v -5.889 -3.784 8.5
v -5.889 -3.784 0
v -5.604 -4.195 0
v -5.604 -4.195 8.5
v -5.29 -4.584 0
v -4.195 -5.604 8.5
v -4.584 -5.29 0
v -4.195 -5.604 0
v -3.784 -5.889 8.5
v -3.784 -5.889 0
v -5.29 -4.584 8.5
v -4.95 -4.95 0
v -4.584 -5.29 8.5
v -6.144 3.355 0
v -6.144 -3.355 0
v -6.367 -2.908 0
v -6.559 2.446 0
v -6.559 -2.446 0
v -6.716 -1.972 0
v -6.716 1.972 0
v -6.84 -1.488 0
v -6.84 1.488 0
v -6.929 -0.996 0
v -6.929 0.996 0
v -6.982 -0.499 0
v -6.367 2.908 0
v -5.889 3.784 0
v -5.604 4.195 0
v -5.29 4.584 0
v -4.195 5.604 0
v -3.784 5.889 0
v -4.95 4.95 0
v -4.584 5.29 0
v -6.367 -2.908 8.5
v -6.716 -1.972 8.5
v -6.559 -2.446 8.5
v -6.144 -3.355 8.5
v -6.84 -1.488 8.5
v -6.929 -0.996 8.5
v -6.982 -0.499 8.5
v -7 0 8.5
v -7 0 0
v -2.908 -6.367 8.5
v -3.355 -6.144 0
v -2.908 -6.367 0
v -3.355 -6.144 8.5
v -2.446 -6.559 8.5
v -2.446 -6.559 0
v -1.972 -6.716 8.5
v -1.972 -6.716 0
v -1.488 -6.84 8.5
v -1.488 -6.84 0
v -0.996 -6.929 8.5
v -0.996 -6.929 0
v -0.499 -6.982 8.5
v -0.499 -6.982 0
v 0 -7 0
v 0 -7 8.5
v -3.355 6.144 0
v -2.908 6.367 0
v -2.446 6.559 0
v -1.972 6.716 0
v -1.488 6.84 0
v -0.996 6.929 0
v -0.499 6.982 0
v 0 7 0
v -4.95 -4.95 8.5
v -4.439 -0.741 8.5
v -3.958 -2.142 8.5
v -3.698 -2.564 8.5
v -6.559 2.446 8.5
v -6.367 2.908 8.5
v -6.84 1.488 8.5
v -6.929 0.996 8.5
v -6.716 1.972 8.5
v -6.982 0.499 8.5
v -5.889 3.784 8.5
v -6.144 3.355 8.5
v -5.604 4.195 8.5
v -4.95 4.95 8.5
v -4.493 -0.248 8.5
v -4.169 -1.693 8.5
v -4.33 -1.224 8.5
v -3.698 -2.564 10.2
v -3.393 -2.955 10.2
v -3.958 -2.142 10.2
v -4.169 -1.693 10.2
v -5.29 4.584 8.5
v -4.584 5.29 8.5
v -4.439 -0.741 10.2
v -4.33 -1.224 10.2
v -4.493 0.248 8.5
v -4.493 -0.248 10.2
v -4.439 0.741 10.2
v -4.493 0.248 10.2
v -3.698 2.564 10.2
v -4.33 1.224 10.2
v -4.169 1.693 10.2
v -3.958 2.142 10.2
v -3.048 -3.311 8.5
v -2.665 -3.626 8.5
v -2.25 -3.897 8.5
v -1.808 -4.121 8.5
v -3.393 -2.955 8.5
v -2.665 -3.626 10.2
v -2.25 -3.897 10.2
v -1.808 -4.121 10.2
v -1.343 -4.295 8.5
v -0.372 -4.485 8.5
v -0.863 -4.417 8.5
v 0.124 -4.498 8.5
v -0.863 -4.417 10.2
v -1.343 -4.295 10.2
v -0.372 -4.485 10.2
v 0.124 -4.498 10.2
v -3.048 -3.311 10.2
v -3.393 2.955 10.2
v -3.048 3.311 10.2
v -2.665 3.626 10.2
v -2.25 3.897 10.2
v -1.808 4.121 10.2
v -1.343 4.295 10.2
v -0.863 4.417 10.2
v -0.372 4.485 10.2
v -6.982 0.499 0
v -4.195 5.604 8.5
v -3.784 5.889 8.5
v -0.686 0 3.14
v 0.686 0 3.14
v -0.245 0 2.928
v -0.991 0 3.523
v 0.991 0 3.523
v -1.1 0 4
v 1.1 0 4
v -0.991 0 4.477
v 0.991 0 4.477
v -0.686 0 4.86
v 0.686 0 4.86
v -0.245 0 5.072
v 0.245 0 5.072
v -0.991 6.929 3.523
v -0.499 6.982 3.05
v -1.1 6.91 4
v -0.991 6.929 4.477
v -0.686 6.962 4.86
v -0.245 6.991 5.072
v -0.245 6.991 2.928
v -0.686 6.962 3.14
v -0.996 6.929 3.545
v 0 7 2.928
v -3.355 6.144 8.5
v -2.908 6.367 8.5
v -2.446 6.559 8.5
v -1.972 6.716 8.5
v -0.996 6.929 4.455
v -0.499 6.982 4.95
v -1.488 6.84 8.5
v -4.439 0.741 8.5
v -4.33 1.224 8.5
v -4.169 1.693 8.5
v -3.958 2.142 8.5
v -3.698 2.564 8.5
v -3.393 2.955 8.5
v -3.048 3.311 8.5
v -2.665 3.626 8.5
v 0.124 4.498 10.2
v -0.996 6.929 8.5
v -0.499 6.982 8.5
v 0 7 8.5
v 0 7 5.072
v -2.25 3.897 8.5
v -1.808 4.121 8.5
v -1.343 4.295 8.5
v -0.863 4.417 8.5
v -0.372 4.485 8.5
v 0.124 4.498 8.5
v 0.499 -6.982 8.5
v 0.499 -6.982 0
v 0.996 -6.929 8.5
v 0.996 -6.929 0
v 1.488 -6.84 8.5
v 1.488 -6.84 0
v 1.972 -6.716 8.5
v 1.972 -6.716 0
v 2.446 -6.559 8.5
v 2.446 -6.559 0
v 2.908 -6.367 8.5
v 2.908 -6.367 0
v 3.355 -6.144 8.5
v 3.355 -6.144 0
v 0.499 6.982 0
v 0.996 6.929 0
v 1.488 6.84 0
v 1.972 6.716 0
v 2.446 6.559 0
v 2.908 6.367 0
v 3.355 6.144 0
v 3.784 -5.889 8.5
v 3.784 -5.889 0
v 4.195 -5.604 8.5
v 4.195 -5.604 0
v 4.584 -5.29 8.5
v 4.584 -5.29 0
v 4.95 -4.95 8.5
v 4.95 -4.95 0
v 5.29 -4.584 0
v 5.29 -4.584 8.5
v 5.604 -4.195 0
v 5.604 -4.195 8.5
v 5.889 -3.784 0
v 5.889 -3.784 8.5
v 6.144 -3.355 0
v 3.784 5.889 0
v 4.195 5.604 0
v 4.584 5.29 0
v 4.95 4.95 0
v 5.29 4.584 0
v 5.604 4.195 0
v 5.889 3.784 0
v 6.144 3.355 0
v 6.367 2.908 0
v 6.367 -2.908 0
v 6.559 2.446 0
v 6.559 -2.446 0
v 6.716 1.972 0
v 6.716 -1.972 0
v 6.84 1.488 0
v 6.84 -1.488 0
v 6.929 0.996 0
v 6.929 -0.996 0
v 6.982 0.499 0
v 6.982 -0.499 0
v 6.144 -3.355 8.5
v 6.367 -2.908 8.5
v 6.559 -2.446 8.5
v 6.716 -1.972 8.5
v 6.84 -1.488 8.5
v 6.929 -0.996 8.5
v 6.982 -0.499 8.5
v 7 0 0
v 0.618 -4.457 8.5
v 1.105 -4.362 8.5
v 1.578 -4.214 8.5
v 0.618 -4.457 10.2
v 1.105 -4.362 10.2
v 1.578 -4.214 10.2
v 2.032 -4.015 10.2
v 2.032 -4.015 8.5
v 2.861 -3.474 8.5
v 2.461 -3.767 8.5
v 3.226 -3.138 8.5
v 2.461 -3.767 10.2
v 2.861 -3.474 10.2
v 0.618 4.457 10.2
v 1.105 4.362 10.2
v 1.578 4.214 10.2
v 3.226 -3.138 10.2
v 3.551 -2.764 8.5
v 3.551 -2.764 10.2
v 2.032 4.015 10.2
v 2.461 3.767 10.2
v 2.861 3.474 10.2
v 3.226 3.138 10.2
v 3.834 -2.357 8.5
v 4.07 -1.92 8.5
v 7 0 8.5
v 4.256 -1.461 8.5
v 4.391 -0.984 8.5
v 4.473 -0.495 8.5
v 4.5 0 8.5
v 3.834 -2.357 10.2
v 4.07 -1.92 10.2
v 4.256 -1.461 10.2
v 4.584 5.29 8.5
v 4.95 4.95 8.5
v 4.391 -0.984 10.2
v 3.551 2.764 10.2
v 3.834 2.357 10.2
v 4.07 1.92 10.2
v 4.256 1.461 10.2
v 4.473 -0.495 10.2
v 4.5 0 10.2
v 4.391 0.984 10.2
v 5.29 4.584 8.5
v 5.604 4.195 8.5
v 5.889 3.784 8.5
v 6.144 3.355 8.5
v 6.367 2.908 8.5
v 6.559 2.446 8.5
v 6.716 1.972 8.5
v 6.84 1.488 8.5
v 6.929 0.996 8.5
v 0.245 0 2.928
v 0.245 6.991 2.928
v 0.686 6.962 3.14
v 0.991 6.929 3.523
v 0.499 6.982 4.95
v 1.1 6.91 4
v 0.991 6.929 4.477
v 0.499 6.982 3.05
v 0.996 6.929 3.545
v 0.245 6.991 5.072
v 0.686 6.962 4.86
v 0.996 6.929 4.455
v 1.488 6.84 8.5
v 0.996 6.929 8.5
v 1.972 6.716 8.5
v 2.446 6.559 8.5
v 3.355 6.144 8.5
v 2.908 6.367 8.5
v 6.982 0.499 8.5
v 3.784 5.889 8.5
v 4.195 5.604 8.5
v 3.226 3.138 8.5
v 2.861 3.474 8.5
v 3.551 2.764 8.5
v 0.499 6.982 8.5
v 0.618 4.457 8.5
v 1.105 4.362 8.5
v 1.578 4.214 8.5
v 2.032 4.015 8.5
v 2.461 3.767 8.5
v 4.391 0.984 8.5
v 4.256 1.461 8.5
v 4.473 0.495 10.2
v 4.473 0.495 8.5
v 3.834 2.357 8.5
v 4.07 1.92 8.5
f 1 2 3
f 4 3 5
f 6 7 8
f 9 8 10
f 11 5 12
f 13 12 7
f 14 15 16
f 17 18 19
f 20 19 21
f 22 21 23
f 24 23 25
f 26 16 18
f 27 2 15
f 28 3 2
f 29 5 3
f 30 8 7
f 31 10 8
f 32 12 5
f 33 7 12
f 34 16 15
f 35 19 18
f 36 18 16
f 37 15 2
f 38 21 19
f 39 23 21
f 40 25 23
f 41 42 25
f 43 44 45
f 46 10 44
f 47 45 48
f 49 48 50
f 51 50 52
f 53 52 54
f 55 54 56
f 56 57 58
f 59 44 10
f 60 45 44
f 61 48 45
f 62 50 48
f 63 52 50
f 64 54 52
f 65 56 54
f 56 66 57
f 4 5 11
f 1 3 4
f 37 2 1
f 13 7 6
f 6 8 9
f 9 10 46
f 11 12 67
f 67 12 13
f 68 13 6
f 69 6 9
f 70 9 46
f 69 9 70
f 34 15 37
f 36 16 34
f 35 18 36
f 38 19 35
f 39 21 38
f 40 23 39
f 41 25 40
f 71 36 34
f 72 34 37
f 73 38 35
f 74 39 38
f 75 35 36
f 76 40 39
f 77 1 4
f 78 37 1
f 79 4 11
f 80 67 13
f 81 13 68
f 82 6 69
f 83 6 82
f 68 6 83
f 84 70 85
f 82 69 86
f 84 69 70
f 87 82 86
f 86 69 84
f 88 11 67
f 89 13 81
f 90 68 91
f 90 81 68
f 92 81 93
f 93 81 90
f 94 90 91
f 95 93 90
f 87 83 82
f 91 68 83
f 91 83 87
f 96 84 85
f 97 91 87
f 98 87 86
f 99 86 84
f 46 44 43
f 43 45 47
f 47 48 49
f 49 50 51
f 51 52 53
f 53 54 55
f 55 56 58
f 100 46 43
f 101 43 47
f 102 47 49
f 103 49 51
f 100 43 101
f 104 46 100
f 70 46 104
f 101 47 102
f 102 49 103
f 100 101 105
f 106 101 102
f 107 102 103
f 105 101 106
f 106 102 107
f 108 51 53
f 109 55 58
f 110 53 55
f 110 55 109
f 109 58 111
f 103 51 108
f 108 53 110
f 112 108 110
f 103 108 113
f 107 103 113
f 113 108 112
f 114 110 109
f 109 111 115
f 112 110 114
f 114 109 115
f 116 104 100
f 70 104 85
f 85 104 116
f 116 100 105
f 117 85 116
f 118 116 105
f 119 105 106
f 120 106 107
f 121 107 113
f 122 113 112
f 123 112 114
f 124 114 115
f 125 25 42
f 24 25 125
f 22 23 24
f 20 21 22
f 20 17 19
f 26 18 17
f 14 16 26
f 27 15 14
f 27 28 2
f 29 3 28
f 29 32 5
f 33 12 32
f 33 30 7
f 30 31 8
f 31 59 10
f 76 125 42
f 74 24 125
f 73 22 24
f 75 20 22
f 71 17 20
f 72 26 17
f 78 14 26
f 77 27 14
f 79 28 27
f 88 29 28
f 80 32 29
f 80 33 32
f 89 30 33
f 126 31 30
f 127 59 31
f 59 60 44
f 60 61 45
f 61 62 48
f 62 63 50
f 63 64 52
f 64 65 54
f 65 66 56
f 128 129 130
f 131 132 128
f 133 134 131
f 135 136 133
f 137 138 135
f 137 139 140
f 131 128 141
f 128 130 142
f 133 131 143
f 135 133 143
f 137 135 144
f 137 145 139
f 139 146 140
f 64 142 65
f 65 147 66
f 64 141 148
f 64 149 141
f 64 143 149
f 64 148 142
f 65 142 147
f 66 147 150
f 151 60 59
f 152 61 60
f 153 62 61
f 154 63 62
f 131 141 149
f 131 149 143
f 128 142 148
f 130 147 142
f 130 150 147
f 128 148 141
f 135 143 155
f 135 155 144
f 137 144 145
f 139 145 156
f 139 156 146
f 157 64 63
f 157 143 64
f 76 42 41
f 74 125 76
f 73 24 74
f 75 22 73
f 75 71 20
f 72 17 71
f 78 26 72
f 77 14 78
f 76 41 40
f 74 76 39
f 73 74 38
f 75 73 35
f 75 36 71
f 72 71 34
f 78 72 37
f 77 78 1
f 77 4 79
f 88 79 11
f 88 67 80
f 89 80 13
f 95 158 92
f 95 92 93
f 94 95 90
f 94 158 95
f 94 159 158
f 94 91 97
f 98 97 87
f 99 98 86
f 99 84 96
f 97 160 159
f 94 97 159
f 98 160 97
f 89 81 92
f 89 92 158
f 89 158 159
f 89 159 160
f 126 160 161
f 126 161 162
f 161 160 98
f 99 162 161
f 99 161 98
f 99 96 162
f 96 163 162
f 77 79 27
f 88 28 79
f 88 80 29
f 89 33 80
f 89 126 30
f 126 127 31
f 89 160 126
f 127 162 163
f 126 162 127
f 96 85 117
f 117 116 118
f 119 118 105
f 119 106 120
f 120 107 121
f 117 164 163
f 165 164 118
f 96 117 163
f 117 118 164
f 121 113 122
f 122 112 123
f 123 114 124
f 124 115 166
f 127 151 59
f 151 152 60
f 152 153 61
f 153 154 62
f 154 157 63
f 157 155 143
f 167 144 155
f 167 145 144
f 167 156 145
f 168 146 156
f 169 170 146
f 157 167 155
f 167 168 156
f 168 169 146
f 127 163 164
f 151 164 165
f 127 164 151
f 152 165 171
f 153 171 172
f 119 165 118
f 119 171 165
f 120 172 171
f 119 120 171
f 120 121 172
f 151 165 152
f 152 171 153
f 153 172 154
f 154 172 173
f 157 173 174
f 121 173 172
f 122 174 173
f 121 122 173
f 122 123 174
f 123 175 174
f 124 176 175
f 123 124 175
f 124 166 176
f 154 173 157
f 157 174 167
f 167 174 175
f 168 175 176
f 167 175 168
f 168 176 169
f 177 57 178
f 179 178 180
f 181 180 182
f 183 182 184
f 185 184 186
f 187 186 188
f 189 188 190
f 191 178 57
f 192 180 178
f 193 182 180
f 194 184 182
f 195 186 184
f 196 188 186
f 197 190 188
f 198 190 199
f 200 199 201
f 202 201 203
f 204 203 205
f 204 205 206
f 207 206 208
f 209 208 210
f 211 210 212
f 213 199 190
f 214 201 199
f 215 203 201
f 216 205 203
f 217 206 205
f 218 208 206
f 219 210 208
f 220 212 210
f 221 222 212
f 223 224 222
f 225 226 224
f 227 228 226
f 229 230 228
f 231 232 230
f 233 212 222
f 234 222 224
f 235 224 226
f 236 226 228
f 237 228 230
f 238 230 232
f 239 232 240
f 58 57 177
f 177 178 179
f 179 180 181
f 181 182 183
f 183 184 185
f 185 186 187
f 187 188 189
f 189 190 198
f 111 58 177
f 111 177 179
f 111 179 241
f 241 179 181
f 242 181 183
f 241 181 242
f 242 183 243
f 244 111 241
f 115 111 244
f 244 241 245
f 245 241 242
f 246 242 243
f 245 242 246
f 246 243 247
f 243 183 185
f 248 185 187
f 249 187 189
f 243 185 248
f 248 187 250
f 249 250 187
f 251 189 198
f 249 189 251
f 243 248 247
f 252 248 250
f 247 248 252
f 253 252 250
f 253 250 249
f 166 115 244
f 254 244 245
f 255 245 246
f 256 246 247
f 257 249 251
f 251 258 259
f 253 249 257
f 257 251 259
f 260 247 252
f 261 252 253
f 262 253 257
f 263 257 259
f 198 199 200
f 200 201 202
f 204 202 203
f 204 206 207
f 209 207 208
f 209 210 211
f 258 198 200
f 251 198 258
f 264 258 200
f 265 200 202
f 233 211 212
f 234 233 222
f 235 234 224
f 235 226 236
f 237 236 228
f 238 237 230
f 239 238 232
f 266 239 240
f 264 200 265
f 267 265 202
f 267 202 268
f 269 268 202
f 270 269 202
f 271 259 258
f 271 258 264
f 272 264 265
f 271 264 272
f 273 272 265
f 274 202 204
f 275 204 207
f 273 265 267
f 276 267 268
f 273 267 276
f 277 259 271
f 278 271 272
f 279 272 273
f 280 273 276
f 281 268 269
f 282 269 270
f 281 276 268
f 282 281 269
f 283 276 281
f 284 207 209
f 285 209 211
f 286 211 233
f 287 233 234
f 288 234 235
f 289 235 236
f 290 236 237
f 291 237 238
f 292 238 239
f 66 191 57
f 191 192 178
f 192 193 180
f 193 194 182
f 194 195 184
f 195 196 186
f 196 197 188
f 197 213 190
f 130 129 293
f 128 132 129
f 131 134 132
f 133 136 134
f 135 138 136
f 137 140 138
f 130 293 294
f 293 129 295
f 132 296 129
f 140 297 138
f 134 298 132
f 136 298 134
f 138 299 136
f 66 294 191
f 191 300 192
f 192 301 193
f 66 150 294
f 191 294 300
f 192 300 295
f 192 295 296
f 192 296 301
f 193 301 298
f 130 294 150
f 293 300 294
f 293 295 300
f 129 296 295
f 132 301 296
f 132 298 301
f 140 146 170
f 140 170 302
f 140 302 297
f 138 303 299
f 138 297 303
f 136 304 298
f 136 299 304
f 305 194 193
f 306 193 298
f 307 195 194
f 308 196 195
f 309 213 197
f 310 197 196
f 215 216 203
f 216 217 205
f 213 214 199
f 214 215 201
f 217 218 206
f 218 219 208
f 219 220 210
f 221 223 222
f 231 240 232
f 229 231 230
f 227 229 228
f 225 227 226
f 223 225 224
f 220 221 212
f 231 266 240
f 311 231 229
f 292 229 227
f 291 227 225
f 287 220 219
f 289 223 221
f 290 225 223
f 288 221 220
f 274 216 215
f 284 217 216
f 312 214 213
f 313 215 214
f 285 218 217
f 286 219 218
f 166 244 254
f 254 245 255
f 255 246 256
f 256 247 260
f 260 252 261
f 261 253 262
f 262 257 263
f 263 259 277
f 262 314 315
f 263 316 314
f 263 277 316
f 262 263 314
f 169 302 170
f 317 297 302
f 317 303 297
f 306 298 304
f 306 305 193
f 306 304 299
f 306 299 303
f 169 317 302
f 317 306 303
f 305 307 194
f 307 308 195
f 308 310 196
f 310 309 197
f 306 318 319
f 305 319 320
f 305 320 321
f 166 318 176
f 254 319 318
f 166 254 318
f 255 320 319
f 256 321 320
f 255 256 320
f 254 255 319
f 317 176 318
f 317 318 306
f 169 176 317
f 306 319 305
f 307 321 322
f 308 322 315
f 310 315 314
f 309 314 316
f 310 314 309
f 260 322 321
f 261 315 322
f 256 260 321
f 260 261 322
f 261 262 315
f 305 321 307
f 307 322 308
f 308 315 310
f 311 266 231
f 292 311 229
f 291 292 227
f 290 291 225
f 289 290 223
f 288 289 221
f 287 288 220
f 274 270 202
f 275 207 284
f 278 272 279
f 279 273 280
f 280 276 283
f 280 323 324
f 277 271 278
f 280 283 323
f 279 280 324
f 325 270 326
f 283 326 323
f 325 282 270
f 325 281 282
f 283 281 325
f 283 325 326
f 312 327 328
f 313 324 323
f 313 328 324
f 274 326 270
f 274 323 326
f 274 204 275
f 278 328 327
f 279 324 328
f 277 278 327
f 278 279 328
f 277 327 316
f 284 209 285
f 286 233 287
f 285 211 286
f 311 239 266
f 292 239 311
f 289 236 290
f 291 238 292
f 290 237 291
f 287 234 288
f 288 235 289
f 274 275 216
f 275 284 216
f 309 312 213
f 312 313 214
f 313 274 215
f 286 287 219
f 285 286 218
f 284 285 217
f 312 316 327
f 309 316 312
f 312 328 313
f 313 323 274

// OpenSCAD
// file: lib/lib.scad
// Shared helpers. Include AFTER params.scad (needs TOL, M3_* etc.).
$fa = 4; $fs = 0.5;

module rrect(size, r) {            // 2D rounded rectangle, centred
    r2 = min(r, min(size[0], size[1]) / 2 - 0.001);
    offset(r = r2) square([size[0] - 2 * r2, size[1] - 2 * r2], center = true);
}
module rbox(size, r, center_xy = true) {   // box with rounded vertical edges
    translate(center_xy ? [0, 0, 0] : [size[0] / 2, size[1] / 2, 0])
        linear_extrude(size[2]) rrect([size[0], size[1]], r);
}
module rbox_at(x0, x1, y0, y1, z0, z1, r = 0.01) {
    translate([(x0 + x1) / 2, (y0 + y1) / 2, z0]) rbox([x1 - x0, y1 - y0, z1 - z0], r);
}
module box_at(x0, x1, y0, y1, z0, z1) { translate([x0, y0, z0]) cube([x1 - x0, y1 - y0, z1 - z0]); }

module ring(ro, ri, h) { difference() { cylinder(r = ro, h = h); translate([0, 0, -1]) cylinder(r = ri, h = h + 2); } }
module ring_sector(ro, ri, h, a0, a1) {
    intersection() {
        ring(ro, ri, h);
        linear_extrude(h) polygon(concat([[0, 0]], [for (a = [a0 : (a1 - a0) / 24 : a1]) 2 * ro * [cos(a), sin(a)]]));
    }
}
// teardrop hole along an axis lying horizontal (axis = Y after rotation), printable w/o support
module teardrop2d(d) { union() { circle(d = d); rotate(45) square(d / 2); } }
// vertical heat-set insert hole, opening at z=0 going +z (depth l)
module insert_hole(l = M3_INSERT_L) { translate([0, 0, -EPS]) cylinder(d = M3_INSERT_D, h = l + EPS); }
module m3_clear(l) { translate([0, 0, -EPS]) cylinder(d = M3_CLEAR, h = l + 2 * EPS); }
module m3_csk(l) {  // countersunk clearance from z=0 upward, head at z=0 side
    translate([0, 0, -EPS]) { cylinder(d = M3_CLEAR, h = l + 2 * EPS); cylinder(d1 = 6.4, d2 = M3_CLEAR, h = 1.7); }
}
module card2d() { rrect([CARD_L, CARD_W], CARD_R); }
module card_at(cy, z) { translate([0, cy, z]) linear_extrude(CARD_T) card2d(); }

// ---- gears ----
function _inv(a) = tan(a) - a * PI_ / 180;           // involute function, a in deg
function _invpt(rb, r, ang0, s) = let(al = acos(rb / r), th = ang0 - s * (_inv(al) * 180 / PI_)) [r * cos(th), r * sin(th)];
module involute_gear2d(m, z, pa = 20, clearance = 0.05) {
    rp = m * z / 2; rb = rp * cos(pa); ra = rp + m - clearance; rf = rp - 1.25 * m;
    half = 90 / z + _inv(pa) * 180 / PI_;            // tooth half-angle at base (deg)
    n = 8;
    rs = [for (i = [0 : n]) max(rb, rf) + (ra - max(rb, rf)) * i / n];
    union() {
        circle(r = rf, $fn = z * 4);
        for (k = [0 : z - 1]) rotate(k * 360 / z) polygon(concat(
            [[rf * cos(-half), rf * sin(-half)]],
            [for (r = rs) let(p = _invpt(rb, r, half, 1)) [p[0], -p[1]]],
            [for (i = [n : -1 : 0]) _invpt(rb, rs[i], half, 1)],
            [[rf * cos(half), rf * sin(half)]]));
    }
}
// straight gear rack (2D in XY: teeth along +x, pointing -y, pitch line at y=0)
module gear_rack2d(m, len, back = 3) {
    p = PI_ * m; ad = m; de = 1.25 * m; t = tan(20);
    n = ceil(len / p) + 1;
    intersection() {
        union() {
            translate([0, de]) square([len, back]);
            for (i = [0 : n]) if (i * p - p / 4 - (p / 4 + de * t) >= 0 && i * p + de * t <= len) translate([i * p - p / 4, 0]) polygon([
                [-(p / 4 + de * t), de + 0.01], [p / 4 + de * t + 0.01, de + 0.01],
                [p / 4 - ad * t, -ad], [-(p / 4 - ad * t), -ad] ]);
        }
        translate([0, -ad - 1]) square([len, ad + de + back + 2]);
    }
}
// GT2 belt-tooth profile ring (teeth outward), 2D
module gt2_ring2d(n, r_land, ri) {
    union() {
        difference() { circle(r = r_land + 0.01, $fn = n * 2); circle(r = ri, $fn = n * 2); }
        for (k = [0 : n - 1]) rotate(k * 360 / n)
            translate([r_land, 0]) hull() { translate([-0.2, 0]) square([0.2, 1.0], center = true); translate([0.25, 0]) circle(r = 0.5, $fn = 12); }
    }
}
// main file
// Clock-spring hub (static): pegs into the deck centre; the ribbon's inner end is clamped to
// it and runs down beside it into the deck slot (D-19). Print: upside down (top on bed), no supports.
include <params.scad>
include <lib/lib.scad>
SH_Z1 = SPOOL_Z0 + SPOOL_H + 0.5;
module spool_hub() difference() {
    union() {
        translate([0, 0, DECK_Z + DECK_T]) cylinder(r = SPOOL_RI, h = SH_Z1 - DECK_Z - DECK_T);
        translate([0, 0, DECK_Z + 0.3]) cylinder(r = SPOOL_RI - 2.5, h = DECK_T);       // peg
    }
    translate([0, 0, SH_Z1 - 4]) rotate([90, 0, 0]) cylinder(d = 2.2, h = 20);        // geom: cable-tie hole
}
module spool_hub_print() translate([0, 0, SH_Z1]) rotate([180, 0, 0]) spool_hub();
spool_hub_print();
